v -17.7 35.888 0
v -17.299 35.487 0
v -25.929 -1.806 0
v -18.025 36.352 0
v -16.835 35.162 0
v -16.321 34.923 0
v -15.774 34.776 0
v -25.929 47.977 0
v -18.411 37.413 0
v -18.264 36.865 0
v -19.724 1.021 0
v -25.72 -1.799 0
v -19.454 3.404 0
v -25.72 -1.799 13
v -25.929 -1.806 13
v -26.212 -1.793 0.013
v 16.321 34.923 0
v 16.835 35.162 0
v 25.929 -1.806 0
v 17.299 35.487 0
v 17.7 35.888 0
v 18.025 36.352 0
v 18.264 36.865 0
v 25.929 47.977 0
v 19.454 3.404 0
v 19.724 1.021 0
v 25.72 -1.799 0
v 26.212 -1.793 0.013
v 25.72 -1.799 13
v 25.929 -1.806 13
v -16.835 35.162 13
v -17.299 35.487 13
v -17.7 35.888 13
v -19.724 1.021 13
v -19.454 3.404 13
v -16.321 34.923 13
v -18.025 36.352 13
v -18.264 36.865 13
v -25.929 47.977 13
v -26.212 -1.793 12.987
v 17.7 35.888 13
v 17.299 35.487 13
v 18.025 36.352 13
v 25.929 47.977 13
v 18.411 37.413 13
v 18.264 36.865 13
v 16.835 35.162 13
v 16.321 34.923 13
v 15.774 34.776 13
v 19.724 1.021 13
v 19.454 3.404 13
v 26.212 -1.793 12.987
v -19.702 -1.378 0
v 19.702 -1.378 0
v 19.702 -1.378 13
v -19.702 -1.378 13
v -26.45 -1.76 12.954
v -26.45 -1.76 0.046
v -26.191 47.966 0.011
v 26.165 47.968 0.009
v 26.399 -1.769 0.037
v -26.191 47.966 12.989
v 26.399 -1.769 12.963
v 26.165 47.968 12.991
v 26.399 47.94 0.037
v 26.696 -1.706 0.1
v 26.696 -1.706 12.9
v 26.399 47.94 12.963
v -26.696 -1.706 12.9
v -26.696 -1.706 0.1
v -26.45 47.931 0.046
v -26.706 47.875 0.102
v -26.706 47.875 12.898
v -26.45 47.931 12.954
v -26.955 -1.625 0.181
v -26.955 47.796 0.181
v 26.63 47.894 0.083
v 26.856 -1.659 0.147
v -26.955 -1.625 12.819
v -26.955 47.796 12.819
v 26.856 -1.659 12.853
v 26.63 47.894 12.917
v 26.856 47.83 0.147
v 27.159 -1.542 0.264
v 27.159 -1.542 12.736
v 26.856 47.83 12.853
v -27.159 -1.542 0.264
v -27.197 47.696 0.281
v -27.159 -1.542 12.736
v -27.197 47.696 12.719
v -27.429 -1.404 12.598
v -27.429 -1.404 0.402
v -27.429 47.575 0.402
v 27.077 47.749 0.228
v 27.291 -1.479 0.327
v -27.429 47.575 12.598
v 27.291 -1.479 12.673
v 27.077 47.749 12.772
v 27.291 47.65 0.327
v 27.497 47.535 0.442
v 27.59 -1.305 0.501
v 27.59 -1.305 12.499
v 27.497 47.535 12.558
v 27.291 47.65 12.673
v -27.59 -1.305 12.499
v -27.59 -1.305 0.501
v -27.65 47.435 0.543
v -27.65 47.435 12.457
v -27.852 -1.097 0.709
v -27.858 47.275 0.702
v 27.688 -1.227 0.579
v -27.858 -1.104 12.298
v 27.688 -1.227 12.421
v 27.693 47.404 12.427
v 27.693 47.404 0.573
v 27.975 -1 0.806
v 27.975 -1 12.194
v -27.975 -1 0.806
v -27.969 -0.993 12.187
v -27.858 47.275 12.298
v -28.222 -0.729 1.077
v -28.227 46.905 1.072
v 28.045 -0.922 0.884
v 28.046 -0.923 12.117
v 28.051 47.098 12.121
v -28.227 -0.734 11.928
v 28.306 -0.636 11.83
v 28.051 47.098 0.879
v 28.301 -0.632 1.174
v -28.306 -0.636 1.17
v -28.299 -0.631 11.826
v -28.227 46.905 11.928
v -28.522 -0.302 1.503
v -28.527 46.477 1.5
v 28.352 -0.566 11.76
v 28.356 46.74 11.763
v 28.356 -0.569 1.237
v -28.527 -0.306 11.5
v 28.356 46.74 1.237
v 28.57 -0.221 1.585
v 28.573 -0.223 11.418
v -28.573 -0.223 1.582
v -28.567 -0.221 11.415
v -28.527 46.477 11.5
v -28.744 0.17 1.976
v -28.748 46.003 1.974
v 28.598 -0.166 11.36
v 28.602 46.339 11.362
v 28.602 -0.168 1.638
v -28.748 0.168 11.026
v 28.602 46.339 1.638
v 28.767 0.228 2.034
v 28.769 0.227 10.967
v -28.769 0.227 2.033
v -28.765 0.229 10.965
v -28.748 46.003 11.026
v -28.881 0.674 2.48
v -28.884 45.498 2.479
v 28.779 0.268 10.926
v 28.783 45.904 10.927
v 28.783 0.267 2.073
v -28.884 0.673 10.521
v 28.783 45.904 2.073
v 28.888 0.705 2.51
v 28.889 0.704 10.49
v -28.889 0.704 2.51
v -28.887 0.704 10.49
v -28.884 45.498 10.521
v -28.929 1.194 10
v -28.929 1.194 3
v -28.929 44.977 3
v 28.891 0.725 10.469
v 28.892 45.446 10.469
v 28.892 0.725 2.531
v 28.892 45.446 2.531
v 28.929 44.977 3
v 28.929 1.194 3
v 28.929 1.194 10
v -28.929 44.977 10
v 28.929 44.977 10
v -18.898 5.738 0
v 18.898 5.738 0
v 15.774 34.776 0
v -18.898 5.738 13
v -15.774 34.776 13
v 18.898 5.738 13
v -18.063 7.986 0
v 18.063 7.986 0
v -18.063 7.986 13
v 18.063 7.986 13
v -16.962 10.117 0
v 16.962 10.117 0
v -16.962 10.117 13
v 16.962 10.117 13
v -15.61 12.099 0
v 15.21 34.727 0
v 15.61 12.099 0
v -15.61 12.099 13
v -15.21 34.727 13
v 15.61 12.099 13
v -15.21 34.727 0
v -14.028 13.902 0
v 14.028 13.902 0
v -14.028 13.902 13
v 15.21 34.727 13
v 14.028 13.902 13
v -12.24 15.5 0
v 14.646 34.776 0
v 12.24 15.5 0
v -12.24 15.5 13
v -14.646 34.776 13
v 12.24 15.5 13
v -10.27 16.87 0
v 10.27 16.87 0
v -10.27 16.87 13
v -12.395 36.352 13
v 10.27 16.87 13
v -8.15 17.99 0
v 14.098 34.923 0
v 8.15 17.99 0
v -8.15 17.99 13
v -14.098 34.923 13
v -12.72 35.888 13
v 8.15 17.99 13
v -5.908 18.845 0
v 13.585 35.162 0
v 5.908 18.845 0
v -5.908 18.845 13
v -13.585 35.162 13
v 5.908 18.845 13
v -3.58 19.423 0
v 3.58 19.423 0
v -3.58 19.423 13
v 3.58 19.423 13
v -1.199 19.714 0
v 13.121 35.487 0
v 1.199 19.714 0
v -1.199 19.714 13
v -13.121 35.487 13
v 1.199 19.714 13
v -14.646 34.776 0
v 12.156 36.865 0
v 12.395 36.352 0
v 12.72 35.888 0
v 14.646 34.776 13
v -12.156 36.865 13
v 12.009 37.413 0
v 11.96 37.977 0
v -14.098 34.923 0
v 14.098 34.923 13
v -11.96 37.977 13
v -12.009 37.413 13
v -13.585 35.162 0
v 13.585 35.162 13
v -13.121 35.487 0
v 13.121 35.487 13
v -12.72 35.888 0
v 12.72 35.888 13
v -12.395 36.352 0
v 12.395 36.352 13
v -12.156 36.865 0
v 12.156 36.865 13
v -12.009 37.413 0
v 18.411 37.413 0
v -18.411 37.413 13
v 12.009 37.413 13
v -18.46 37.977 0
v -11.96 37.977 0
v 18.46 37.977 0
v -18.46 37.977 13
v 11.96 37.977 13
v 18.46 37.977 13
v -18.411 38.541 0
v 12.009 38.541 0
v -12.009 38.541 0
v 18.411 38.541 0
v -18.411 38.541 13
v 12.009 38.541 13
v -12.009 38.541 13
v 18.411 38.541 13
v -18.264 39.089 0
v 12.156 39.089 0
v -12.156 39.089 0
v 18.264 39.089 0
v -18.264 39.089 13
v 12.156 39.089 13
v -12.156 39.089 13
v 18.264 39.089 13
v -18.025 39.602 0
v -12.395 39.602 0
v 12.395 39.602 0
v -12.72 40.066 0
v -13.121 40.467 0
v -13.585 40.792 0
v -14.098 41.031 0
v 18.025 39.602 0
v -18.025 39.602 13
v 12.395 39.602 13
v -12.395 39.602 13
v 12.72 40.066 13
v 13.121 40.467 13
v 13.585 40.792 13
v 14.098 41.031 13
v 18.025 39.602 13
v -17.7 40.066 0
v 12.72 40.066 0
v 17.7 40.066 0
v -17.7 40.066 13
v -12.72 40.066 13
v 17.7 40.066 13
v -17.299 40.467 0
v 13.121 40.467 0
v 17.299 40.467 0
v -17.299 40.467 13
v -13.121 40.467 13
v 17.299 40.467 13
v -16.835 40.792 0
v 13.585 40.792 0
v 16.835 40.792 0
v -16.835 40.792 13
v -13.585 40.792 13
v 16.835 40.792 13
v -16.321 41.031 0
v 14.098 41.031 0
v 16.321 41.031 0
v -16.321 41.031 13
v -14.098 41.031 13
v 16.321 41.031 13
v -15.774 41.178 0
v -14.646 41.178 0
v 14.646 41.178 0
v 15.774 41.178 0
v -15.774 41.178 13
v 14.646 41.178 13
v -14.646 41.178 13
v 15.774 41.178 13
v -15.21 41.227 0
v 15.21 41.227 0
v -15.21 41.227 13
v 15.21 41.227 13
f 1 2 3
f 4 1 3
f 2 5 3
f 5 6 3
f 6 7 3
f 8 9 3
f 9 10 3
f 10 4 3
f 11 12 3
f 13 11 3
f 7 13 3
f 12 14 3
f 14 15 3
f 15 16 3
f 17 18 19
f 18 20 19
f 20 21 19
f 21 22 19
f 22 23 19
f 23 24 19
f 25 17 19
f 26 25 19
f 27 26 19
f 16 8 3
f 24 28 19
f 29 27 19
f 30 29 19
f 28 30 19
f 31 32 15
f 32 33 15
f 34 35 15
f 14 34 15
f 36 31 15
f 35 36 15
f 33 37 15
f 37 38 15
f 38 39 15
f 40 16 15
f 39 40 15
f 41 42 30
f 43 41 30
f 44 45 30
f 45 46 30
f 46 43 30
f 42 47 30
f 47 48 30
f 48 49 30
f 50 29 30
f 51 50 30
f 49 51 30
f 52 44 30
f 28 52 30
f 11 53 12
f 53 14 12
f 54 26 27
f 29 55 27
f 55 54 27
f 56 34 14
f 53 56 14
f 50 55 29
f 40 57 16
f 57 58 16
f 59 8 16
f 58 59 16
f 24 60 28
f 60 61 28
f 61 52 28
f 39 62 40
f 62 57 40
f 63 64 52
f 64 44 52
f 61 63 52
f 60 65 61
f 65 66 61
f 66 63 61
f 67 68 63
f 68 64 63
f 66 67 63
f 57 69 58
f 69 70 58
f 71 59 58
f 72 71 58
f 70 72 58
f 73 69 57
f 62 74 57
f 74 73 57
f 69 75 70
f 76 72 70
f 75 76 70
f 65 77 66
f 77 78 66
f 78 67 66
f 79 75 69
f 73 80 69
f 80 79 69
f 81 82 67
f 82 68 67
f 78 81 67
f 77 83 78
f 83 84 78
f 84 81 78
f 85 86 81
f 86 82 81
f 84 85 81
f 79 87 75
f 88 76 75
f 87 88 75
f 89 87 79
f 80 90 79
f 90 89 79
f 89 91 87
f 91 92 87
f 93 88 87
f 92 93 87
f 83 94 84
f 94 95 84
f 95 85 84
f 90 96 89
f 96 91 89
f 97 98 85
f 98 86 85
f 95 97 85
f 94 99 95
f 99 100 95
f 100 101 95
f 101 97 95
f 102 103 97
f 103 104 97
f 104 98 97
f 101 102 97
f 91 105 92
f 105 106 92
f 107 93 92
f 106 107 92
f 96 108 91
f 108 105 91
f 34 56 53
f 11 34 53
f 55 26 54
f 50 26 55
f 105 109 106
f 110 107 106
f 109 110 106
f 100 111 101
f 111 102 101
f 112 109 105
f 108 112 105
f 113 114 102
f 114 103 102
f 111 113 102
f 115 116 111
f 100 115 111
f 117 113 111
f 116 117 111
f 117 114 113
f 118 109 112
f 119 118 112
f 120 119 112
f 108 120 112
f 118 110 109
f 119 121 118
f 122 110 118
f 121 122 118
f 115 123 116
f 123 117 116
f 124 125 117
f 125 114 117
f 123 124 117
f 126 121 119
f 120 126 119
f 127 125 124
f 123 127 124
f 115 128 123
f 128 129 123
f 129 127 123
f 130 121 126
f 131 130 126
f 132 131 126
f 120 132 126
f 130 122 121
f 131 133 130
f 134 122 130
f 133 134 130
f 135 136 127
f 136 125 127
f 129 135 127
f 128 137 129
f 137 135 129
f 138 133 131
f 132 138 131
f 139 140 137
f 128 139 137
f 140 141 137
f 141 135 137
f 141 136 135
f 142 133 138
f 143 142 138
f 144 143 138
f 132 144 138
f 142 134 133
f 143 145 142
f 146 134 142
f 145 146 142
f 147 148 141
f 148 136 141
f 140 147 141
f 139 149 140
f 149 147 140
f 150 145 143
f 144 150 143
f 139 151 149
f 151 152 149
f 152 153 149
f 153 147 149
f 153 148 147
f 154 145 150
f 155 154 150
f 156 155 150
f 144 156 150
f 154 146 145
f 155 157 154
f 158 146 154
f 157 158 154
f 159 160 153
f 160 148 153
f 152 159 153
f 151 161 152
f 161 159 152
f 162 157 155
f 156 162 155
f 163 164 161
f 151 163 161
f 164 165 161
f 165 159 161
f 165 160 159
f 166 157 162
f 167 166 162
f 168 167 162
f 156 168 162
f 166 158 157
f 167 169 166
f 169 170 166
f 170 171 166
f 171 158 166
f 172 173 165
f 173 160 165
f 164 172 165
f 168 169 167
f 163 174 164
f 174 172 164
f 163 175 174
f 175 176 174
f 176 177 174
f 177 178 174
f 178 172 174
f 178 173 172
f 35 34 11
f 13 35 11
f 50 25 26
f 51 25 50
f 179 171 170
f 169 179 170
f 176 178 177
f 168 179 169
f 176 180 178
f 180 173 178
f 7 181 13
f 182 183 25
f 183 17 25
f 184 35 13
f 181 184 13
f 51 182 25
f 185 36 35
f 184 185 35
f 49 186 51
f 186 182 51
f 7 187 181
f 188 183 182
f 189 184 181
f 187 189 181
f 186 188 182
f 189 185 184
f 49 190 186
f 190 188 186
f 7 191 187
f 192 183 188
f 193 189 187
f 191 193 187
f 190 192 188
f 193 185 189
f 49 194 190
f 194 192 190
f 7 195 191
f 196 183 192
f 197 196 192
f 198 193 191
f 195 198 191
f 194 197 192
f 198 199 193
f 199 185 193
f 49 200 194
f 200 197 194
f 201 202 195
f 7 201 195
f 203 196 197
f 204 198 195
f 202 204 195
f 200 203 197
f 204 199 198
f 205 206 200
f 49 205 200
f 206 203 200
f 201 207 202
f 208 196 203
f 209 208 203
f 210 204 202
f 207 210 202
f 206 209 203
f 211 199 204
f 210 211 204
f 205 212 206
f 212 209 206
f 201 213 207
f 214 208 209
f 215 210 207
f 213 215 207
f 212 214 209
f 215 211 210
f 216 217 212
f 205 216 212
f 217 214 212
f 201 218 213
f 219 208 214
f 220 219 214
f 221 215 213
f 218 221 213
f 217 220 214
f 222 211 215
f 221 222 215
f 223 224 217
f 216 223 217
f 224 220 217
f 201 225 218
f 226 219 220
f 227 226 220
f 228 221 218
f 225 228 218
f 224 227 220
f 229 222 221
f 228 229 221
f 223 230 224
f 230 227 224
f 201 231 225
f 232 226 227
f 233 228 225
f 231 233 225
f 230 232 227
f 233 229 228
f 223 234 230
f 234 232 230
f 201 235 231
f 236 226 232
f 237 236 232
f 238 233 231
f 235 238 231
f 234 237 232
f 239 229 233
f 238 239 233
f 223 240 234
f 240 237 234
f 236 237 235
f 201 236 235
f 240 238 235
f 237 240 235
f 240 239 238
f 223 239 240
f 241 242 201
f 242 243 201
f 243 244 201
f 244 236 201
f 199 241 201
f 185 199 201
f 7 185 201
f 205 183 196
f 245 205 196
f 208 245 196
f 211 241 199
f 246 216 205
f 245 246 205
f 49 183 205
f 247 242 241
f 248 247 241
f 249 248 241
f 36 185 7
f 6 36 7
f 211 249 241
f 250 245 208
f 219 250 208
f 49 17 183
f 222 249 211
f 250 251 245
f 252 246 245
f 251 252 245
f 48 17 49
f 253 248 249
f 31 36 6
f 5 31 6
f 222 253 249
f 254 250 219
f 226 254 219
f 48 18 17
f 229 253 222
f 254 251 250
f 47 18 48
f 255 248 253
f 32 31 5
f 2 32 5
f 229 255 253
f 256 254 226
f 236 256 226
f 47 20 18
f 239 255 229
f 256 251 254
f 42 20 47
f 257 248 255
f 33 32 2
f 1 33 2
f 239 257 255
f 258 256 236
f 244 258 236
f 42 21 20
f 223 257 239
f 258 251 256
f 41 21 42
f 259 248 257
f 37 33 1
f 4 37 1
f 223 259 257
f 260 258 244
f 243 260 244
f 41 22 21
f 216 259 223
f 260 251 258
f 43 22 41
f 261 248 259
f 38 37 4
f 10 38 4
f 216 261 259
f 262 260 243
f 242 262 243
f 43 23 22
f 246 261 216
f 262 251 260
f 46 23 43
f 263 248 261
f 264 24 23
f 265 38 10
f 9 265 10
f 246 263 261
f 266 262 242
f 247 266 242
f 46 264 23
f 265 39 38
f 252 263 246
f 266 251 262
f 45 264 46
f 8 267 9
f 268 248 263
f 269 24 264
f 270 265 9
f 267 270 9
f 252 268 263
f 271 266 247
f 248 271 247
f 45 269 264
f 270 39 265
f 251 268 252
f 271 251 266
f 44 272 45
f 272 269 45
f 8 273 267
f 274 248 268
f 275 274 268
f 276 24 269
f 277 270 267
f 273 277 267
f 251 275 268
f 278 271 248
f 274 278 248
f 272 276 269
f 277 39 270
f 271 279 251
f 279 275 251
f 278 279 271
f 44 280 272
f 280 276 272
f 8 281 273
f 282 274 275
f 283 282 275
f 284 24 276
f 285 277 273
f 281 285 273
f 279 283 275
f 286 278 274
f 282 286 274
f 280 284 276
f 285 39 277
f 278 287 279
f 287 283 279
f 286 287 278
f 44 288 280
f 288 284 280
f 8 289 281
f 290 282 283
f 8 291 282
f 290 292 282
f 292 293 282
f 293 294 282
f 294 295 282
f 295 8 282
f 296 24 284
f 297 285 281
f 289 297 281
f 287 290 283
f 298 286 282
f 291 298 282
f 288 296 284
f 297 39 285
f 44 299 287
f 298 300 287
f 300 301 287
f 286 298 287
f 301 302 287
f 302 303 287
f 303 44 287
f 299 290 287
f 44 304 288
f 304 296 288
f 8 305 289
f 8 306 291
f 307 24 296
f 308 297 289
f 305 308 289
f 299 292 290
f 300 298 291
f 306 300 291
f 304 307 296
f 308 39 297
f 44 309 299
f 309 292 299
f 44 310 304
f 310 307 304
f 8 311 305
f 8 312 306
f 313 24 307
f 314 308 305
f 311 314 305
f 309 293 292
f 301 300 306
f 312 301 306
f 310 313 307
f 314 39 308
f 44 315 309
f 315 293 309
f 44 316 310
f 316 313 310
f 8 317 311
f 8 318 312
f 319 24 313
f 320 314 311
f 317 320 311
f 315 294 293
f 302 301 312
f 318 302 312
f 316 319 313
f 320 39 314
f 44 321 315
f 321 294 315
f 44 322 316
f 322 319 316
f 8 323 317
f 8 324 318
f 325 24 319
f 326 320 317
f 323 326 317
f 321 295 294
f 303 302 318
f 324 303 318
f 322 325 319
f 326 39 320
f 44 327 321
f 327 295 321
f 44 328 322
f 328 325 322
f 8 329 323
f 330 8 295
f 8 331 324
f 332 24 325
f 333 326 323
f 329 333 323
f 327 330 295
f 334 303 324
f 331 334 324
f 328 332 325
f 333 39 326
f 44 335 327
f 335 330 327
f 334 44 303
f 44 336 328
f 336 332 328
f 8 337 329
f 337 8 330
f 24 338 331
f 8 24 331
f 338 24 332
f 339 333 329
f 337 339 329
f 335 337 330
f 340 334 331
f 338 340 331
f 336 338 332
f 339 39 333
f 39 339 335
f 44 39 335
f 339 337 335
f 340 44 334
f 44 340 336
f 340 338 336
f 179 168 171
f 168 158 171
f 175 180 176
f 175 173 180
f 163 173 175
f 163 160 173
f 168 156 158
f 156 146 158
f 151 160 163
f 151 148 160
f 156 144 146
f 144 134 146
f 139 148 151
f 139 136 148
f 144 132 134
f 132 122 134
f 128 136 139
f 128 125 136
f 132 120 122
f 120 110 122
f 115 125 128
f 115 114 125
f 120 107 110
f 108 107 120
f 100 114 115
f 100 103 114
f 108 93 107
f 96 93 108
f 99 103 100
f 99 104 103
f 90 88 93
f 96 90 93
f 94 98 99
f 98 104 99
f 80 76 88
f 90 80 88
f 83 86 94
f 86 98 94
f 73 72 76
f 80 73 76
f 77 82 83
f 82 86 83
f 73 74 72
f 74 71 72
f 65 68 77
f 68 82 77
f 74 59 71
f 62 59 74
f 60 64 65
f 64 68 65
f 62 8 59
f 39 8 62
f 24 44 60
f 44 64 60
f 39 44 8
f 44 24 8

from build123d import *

# Parameters (mm, degrees)
SKETCH2_R           = 3.25
BOSS_EXTRUDE1_DEPTH = 13
FILLET1_R           = 3


with BuildPart() as part:
    # Sketch2 → Boss-Extrude1 (new body)
    with BuildSketch(Plane.XY):
        with BuildLine():
            Line((-19.701889993, -1.377690356), (-28.929357458, -2.022937739))
            Line((-28.929357458, -2.022937739), (-28.929357458, 47.977062261))
            Line((-28.929357458, 47.977062261), (28.929357458, 47.977062261))
            Line((28.929357458, 47.977062261), (28.929357458, -2.022937739))
            Line((28.929357458, -2.022937739), (19.701889993, -1.377690356))
            ThreePointArc((19.701889993, -1.377690356), (0, 19.75), (-19.701889993, -1.377690356))
        make_face()
        with Locations(Location((15.209921646, 37.977062261, 0), (0, 0, 180))):
            Circle(SKETCH2_R, mode=Mode.SUBTRACT)
        with Locations(Location((-15.209921646, 37.977062261, 0), (0, 0, 180))):
            Circle(SKETCH2_R, mode=Mode.SUBTRACT)
    extrude(amount=BOSS_EXTRUDE1_DEPTH)

    # Fillet1
    fillet1_edges = [part.edges().sort_by_distance(p)[0] for p in [
        (28.929357458, 22.977062261, 13),
        (-28.929357458, -2.022937739, 6.5),
        (-28.929357458, 47.977062261, 6.5),
        (28.929357458, 47.977062261, 6.5),
        (28.929357458, -2.022937739, 6.5),
        (-28.929357458, 22.977062261, 13),
        (-28.929357458, 22.977062261, 0),
        (28.929357458, 22.977062261, 0),
    ]]
    fillet(fillet1_edges, radius=FILLET1_R)


solid = part.part
